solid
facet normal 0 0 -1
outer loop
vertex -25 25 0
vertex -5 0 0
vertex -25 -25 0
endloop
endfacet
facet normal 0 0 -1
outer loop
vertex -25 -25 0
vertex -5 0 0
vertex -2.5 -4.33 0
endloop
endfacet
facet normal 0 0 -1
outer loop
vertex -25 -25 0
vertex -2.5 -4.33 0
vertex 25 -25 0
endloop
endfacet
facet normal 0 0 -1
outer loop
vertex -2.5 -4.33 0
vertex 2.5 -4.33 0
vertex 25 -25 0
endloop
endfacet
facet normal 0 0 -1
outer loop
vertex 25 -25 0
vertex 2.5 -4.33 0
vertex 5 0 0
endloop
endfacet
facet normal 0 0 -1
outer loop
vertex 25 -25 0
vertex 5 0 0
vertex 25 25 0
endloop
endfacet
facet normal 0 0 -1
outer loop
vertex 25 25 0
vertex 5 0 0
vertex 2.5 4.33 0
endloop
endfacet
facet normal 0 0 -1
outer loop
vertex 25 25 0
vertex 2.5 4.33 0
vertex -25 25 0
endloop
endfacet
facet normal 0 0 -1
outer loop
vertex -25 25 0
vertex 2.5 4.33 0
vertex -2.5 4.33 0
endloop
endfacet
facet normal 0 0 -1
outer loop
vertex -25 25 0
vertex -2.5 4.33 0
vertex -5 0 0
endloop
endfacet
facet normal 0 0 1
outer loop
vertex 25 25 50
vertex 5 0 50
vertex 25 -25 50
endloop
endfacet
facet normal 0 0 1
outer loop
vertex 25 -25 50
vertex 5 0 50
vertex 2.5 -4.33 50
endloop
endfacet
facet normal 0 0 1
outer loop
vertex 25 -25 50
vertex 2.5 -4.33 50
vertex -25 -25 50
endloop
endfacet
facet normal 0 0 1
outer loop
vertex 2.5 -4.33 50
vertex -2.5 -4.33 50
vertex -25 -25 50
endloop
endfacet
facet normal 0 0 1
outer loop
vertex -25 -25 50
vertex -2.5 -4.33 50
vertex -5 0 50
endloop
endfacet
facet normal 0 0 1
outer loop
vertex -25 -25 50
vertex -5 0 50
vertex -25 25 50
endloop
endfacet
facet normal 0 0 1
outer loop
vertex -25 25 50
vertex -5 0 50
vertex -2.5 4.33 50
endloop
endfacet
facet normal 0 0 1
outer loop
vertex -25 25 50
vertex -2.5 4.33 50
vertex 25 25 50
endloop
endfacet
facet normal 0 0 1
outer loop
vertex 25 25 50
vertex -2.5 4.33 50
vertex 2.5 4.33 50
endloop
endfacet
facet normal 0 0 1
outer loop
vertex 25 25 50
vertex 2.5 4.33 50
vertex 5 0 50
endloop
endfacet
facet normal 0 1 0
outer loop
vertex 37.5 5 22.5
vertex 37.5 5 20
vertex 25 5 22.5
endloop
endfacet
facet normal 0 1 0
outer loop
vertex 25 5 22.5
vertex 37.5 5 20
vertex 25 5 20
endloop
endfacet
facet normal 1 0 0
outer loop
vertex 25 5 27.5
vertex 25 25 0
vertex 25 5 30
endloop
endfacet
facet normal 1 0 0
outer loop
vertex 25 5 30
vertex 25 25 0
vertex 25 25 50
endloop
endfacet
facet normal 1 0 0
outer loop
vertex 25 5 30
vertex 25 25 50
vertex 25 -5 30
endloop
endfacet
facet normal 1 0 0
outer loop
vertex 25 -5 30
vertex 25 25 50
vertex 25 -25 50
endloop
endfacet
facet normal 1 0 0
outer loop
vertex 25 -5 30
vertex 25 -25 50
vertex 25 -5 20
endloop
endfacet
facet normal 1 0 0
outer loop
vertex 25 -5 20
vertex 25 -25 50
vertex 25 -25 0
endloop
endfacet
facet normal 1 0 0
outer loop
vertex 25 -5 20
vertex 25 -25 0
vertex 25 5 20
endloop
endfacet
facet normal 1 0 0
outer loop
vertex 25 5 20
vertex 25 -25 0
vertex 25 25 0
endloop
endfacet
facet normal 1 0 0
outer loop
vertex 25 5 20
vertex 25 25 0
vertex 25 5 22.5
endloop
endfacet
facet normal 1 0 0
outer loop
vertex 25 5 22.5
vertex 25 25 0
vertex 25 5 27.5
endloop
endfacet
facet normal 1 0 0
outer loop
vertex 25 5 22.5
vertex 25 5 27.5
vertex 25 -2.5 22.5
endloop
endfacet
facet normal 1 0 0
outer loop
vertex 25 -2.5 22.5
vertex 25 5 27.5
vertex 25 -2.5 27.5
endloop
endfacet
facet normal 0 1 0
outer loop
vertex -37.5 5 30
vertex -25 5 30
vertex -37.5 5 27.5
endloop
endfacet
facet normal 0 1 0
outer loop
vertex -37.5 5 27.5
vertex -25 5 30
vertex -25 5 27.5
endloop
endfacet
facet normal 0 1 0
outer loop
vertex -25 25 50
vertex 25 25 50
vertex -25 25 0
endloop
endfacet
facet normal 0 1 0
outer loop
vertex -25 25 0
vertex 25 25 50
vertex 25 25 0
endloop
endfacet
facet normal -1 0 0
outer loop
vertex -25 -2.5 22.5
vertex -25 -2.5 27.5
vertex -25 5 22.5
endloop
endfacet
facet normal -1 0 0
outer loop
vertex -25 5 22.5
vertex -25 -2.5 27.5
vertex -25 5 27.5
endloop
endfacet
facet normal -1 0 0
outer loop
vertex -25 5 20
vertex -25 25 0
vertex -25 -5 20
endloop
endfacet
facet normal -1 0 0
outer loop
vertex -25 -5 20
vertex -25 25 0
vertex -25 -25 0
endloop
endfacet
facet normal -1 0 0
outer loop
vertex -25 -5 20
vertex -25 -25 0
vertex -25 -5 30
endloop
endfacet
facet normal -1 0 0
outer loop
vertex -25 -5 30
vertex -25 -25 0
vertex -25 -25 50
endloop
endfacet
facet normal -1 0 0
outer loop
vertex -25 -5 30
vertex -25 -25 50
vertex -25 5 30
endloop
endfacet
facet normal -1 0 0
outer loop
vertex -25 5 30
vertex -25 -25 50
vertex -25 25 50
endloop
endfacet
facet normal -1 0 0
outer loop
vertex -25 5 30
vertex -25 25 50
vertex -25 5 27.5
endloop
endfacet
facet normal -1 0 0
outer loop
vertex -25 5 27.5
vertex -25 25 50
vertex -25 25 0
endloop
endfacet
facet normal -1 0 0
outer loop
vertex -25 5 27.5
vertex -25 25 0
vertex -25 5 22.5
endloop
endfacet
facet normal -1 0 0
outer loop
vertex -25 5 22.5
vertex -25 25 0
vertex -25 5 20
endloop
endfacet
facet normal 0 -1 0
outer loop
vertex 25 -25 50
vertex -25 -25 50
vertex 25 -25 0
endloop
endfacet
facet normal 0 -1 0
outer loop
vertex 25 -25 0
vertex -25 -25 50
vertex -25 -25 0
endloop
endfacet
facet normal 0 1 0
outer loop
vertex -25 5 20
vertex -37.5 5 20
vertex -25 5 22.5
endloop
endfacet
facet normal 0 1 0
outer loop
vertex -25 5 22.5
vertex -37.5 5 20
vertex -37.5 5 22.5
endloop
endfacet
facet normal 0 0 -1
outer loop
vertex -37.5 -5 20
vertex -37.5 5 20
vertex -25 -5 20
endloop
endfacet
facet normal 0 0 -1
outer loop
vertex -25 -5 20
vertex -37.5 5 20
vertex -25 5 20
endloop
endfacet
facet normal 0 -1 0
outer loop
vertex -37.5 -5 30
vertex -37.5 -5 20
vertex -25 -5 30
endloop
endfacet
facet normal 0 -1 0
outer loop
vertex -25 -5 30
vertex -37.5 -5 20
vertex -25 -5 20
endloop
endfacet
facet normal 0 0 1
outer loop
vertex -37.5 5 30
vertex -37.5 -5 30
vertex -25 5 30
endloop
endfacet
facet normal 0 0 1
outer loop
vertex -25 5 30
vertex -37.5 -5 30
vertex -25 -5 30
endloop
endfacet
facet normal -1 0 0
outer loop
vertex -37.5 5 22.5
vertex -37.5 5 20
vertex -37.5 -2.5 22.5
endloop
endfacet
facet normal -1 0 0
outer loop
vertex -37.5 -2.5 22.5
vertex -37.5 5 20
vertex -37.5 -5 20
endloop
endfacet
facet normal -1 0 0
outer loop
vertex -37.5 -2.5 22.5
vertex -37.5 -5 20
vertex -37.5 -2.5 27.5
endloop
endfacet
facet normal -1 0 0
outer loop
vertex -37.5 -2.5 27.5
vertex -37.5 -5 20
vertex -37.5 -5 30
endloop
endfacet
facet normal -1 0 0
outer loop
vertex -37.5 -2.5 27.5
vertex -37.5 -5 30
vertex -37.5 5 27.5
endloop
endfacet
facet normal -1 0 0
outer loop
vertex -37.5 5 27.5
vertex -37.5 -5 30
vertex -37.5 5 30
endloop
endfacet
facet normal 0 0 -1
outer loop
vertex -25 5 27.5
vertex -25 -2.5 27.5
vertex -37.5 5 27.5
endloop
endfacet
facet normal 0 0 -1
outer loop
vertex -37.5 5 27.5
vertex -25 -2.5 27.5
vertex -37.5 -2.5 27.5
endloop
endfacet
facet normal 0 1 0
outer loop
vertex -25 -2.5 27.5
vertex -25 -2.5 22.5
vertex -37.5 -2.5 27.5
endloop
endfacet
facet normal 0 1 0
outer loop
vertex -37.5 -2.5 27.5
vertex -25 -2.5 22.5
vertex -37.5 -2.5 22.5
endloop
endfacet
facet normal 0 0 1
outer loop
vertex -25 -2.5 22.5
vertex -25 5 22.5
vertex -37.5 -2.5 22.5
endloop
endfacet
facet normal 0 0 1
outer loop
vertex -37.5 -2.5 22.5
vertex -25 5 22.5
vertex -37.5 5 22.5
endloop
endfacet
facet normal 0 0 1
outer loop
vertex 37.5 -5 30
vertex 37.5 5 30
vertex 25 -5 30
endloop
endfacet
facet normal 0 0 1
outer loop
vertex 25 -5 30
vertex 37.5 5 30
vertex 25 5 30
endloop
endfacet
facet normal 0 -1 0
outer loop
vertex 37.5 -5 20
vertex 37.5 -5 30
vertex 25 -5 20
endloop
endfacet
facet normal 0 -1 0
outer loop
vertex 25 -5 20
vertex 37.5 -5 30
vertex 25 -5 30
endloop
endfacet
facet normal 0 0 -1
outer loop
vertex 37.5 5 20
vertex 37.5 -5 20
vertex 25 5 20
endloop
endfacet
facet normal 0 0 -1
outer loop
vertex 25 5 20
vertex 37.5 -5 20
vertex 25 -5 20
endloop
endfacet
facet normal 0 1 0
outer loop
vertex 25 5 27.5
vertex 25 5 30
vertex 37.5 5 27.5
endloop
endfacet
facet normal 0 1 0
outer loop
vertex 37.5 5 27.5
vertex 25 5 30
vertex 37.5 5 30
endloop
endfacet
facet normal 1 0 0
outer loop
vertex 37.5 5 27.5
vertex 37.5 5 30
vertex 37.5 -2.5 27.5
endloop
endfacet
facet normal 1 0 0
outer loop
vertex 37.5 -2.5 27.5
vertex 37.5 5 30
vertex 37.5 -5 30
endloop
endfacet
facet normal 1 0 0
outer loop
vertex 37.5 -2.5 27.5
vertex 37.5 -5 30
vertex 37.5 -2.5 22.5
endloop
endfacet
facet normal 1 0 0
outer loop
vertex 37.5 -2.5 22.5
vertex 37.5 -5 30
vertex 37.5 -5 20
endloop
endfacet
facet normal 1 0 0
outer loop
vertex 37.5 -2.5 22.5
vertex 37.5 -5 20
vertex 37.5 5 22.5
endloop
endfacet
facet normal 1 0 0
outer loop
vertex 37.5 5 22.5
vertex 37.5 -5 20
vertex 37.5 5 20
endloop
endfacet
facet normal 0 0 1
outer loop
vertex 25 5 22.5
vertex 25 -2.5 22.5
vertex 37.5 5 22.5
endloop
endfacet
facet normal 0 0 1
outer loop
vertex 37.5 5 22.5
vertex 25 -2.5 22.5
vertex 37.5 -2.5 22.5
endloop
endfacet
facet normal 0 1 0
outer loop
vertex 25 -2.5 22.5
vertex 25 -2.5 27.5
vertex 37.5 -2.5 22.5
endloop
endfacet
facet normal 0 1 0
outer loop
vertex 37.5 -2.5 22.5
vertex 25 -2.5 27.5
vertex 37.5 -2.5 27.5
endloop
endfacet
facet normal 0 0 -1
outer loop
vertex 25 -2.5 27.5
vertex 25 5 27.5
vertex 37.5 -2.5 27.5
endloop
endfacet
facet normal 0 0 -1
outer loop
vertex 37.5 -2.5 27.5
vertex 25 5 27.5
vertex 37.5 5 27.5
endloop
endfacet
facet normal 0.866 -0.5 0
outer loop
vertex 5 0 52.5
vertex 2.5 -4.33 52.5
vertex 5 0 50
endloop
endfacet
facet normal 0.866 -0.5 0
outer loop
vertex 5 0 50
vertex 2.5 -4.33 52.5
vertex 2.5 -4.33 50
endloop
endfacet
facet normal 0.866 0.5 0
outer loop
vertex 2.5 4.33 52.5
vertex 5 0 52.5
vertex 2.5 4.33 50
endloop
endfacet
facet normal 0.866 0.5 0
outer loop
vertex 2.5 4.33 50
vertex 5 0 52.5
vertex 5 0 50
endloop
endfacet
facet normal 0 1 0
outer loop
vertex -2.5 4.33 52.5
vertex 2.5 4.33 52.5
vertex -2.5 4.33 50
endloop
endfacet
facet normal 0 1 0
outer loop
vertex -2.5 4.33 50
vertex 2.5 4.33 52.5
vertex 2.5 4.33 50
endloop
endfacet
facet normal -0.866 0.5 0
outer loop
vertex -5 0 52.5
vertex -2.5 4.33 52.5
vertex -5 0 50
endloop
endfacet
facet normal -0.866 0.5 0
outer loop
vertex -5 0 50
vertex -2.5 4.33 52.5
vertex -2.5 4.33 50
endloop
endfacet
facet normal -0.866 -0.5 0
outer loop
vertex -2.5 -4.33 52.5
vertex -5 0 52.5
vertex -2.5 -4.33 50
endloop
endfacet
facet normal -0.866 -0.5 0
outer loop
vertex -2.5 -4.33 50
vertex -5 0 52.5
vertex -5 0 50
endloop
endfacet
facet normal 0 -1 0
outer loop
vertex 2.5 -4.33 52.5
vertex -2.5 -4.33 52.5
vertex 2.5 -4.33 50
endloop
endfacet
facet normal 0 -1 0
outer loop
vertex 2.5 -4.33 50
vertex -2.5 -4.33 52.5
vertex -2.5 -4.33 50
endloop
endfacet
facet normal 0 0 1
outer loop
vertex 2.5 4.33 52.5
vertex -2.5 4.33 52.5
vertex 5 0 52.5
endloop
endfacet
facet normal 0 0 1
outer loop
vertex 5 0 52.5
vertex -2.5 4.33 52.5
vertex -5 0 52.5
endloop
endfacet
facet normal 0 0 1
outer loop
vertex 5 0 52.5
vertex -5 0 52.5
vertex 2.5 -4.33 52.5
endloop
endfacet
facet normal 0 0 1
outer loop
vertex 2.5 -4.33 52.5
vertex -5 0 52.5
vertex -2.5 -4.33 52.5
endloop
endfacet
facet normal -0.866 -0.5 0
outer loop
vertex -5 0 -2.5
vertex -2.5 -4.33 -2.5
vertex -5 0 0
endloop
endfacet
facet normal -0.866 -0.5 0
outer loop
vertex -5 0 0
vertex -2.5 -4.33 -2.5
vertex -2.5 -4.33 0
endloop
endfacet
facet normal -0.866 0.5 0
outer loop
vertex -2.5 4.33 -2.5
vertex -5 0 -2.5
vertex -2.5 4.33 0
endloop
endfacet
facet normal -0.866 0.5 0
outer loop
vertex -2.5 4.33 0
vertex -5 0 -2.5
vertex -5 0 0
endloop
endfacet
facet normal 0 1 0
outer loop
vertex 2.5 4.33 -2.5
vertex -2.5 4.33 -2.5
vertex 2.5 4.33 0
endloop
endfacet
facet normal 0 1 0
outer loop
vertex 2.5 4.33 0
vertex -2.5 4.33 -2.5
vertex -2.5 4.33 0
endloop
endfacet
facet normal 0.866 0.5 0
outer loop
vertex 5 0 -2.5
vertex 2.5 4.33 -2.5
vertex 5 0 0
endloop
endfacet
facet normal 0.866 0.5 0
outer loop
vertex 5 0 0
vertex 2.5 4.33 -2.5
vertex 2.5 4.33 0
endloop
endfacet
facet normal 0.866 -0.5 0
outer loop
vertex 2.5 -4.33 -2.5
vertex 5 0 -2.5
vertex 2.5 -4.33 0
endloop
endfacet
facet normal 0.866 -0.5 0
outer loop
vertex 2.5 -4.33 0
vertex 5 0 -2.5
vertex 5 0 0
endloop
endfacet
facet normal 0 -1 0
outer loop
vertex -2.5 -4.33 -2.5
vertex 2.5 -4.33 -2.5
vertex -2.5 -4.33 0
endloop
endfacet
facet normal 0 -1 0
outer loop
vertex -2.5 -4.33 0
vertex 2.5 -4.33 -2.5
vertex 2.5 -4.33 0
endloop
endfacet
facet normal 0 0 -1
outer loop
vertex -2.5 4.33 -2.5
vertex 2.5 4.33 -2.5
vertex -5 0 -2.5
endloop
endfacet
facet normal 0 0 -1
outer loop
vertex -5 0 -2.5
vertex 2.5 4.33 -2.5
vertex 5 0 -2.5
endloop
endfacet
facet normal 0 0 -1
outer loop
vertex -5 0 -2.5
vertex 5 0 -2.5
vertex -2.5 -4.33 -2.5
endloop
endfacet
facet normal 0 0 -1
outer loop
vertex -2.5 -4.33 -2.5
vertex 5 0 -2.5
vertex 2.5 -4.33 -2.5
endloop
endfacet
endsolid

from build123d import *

# Parameters (mm, degrees)
SKETCH1_W           = 50
SKETCH1_H           = 50
BOSS_EXTRUDE1_DEPTH = 50
SKETCH2_W           = 5
SKETCH2_H           = 5
BOSS_EXTRUDE2_DEPTH = 12.5
SKETCH3_W           = 5
SKETCH3_H           = 7.5
CUT_EXTRUDE1_DEPTH  = 12.5
SKETCH6_W           = 10
SKETCH6_H           = 10
BOSS_EXTRUDE3_DEPTH = 12.5
SKETCH7_W           = 5
SKETCH7_H           = 7.5
CUT_EXTRUDE2_DEPTH  = 12.5
BOSS_EXTRUDE5_DEPTH = 2.5
BOSS_EXTRUDE6_DEPTH = 2.5


with BuildPart() as part:
    # Sketch1 → Boss-Extrude1 (new body)
    with BuildSketch(Plane.XY):
        Rectangle(SKETCH1_W, SKETCH1_H)
    extrude(amount=BOSS_EXTRUDE1_DEPTH)

    # Sketch2 → Boss-Extrude2 (add)
    with BuildSketch(Plane.ZY.offset(25)):
        with Locations((27.5, -2.5)):
            Rectangle(SKETCH2_W, SKETCH2_H)
        with Locations((22.5, -2.5)):
            Rectangle(SKETCH2_W, SKETCH2_H)
        with Locations((22.5, 2.5)):
            Rectangle(SKETCH2_W, SKETCH2_H)
        with Locations((27.5, 2.5)):
            Rectangle(SKETCH2_W, SKETCH2_H)
    extrude(amount=BOSS_EXTRUDE2_DEPTH)

    # Sketch3 → Cut-Extrude1 (cut)
    with BuildSketch(Plane.ZY.offset(37.5)):
        with Locations((25, 1.25)):
            Rectangle(SKETCH3_W, SKETCH3_H)
    extrude(amount=-CUT_EXTRUDE1_DEPTH, mode=Mode.SUBTRACT)

    # Sketch6 → Boss-Extrude3 (add)
    with BuildSketch(Plane(origin=(25, 0, 0), x_dir=(0, 0, -1), z_dir=(1, 0, 0))):
        with Locations((-25, 0)):
            Rectangle(SKETCH6_W, SKETCH6_H)
    extrude(amount=BOSS_EXTRUDE3_DEPTH)

    # Sketch7 → Cut-Extrude2 (cut)
    with BuildSketch(Plane(origin=(37.5, 0, 0), x_dir=(0, 0, -1), z_dir=(1, 0, 0))):
        with Locations((-25, 1.25)):
            Rectangle(SKETCH7_W, SKETCH7_H)
    extrude(amount=-CUT_EXTRUDE2_DEPTH, mode=Mode.SUBTRACT)

    # Sketch16 → Boss-Extrude5 (add)
    with BuildSketch(Plane.XY.offset(50)):
        Polygon((5, 0), (2.5, 4.330127019), (-2.5, 4.330127019), (-5, 0), (-2.5, -4.330127019), (2.5, -4.330127019), align=None)
    extrude(amount=BOSS_EXTRUDE5_DEPTH)

    # Sketch17 → Boss-Extrude6 (add)
    with BuildSketch(Plane(origin=(0, 0, 0), x_dir=(-1, 0, 0), z_dir=(0, 0, -1))):
        Polygon((5, 0), (2.5, 4.330127019), (-2.5, 4.330127019), (-5, 0), (-2.5, -4.330127019), (2.5, -4.330127019), align=None)
    extrude(amount=BOSS_EXTRUDE6_DEPTH)


solid = part.part
